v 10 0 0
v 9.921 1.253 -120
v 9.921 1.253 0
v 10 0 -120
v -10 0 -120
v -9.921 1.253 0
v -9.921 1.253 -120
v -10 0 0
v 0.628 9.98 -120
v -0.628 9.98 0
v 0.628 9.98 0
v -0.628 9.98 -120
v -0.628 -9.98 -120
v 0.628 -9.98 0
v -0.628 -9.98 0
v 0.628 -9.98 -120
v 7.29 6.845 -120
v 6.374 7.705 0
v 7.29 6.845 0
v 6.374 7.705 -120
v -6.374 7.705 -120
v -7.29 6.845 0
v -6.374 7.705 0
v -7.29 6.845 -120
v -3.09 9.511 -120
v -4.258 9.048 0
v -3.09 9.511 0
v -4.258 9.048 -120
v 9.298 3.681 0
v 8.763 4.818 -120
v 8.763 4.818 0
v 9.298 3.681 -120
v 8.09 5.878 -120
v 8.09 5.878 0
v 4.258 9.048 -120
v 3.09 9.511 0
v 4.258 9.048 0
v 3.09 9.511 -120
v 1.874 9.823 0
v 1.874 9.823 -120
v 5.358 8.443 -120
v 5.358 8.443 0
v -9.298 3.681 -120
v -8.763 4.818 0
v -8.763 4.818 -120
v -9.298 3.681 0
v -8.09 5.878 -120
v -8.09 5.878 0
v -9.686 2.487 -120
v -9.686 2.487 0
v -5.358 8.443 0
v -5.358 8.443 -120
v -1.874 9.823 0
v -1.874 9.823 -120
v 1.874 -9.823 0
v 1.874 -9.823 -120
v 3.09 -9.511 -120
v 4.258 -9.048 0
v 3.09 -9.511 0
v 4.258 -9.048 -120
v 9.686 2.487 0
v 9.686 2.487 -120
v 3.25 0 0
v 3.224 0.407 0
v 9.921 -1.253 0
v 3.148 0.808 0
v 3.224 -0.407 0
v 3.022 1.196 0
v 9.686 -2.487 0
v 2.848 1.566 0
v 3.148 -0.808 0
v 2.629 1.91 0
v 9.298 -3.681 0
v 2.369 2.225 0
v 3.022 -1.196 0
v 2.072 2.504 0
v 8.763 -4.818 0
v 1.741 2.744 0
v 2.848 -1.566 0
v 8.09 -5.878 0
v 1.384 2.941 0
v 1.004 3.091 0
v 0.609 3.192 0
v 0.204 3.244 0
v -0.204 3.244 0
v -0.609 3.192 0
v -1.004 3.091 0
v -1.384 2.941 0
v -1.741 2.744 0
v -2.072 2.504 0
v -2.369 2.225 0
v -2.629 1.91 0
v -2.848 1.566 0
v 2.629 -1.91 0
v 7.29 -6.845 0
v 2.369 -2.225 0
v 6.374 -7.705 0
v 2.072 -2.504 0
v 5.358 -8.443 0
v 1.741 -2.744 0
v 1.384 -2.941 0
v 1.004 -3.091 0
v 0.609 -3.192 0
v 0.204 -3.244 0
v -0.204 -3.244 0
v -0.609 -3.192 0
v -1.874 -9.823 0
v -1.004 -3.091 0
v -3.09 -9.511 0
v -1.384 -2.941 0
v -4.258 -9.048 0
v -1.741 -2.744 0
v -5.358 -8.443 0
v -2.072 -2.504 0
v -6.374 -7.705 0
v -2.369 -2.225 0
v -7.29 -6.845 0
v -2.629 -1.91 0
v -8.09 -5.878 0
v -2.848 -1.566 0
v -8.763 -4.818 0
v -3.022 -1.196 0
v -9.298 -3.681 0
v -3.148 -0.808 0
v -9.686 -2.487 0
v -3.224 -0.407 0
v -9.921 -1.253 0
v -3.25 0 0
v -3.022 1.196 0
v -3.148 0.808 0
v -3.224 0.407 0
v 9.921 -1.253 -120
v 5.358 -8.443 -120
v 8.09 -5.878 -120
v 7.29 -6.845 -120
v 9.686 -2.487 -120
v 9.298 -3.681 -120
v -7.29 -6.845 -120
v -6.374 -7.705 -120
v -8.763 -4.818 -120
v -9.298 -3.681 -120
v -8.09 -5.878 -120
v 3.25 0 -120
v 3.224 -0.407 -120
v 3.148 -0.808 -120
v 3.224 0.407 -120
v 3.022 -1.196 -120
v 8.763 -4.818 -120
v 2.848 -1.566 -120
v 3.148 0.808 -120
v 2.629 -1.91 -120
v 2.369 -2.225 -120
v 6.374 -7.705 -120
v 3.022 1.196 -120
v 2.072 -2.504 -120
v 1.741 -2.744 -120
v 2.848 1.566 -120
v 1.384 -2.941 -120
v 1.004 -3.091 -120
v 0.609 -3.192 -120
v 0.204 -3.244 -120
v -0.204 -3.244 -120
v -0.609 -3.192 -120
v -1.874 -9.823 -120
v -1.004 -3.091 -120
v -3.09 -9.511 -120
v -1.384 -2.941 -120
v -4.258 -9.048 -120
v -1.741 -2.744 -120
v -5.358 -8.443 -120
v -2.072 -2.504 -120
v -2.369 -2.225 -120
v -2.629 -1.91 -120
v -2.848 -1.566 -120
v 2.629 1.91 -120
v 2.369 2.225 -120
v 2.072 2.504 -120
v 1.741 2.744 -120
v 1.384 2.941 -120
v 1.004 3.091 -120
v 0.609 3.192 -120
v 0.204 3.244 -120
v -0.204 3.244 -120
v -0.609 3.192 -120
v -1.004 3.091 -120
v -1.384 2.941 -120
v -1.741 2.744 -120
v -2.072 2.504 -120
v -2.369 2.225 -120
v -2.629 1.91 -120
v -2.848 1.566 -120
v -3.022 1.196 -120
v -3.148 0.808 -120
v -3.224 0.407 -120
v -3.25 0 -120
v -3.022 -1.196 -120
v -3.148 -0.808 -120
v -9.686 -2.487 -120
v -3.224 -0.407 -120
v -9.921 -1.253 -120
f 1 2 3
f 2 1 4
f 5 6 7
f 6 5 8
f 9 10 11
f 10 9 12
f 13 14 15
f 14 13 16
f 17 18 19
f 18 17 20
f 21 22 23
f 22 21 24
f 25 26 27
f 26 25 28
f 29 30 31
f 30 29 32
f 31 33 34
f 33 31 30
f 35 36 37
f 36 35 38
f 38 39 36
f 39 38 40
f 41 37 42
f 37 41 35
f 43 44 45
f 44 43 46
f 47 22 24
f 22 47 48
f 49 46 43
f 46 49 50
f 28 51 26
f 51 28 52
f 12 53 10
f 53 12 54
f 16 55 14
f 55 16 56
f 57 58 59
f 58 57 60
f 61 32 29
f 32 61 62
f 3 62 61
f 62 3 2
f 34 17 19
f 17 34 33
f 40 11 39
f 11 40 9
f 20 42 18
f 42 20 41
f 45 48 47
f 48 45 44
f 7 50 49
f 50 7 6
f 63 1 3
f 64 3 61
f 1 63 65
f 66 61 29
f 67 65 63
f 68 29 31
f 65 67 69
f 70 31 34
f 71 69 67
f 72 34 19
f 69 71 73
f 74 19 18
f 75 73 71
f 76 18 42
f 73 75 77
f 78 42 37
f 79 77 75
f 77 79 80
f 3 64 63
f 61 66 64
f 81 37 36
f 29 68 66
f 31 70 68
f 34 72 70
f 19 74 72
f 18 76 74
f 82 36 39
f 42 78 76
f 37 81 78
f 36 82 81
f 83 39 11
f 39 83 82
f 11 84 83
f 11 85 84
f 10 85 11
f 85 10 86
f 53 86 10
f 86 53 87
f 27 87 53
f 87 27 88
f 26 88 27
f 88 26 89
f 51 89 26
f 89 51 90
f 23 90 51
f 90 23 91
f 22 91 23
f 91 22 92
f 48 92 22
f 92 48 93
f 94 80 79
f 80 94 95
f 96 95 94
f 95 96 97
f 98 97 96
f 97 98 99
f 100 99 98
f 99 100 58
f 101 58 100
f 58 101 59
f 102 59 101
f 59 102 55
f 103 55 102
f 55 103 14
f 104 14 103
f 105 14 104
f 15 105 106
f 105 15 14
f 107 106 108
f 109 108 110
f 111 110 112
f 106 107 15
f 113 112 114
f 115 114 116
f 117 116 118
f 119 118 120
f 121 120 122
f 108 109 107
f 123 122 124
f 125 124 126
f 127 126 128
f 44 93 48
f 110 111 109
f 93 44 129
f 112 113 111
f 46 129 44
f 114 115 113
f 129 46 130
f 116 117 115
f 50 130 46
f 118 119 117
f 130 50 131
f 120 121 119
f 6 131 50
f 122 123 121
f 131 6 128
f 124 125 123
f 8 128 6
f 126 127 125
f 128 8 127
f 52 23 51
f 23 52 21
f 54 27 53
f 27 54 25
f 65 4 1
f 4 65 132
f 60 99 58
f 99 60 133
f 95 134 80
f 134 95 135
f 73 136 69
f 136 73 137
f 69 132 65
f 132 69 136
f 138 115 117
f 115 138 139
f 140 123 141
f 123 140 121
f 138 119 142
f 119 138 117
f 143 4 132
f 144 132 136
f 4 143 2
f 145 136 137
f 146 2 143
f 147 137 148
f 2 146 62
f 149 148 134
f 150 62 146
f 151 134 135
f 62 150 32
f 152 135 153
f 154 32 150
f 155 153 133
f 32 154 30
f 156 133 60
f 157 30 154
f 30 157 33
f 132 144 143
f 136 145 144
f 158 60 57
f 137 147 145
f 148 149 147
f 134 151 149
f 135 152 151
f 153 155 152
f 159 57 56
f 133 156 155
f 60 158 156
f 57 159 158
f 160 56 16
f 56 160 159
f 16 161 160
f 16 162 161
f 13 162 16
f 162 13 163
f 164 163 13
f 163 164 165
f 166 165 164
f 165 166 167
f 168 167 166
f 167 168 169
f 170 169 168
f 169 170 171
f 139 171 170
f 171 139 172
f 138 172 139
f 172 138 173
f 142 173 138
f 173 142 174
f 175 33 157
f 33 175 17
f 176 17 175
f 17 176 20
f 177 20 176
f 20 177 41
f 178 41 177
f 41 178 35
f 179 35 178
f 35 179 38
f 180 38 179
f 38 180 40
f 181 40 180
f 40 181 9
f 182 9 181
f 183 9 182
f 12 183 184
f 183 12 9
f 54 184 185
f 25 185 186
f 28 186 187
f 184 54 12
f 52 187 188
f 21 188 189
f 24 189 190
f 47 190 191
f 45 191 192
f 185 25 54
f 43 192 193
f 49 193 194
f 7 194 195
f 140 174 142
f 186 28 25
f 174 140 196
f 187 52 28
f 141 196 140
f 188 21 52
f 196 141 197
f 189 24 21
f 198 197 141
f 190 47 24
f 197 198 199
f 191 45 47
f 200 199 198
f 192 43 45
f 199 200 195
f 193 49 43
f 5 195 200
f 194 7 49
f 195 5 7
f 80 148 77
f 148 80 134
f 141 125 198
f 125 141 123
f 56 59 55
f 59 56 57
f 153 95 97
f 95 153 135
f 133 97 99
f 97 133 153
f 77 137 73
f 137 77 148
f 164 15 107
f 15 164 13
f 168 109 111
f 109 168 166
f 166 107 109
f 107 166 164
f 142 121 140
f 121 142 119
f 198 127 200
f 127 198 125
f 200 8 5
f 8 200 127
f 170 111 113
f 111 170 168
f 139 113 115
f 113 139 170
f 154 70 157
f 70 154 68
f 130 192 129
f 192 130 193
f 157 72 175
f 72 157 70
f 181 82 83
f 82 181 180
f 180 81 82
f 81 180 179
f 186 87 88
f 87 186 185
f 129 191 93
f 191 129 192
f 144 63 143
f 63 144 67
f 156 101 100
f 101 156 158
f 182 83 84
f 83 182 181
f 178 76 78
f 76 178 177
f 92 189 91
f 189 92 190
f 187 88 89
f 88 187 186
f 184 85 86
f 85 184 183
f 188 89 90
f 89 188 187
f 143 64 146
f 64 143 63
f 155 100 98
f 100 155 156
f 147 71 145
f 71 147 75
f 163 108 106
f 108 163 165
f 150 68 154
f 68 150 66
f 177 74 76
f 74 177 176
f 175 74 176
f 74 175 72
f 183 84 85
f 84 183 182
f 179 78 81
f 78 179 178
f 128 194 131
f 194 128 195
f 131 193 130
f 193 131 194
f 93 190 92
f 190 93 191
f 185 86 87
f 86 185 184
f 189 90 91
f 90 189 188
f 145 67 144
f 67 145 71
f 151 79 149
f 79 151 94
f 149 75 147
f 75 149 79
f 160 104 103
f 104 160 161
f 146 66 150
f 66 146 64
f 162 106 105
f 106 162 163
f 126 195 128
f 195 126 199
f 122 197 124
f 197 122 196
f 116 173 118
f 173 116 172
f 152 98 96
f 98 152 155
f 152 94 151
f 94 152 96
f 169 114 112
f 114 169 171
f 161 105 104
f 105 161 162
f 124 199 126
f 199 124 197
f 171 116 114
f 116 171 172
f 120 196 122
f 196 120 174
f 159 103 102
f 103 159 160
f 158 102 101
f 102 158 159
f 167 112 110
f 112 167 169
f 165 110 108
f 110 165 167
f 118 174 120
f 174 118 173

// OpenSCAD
$fn = 50;


difference() {
	union() {
		translate(v = [0, 0, -120.0000000000]) {
			cylinder(h = 120, r = 10.0000000000);
		}
	}
	union() {
		#translate(v = [0, 0, -120]) {
			cylinder(h = 120, r = 3.2500000000);
		}
	}
}
